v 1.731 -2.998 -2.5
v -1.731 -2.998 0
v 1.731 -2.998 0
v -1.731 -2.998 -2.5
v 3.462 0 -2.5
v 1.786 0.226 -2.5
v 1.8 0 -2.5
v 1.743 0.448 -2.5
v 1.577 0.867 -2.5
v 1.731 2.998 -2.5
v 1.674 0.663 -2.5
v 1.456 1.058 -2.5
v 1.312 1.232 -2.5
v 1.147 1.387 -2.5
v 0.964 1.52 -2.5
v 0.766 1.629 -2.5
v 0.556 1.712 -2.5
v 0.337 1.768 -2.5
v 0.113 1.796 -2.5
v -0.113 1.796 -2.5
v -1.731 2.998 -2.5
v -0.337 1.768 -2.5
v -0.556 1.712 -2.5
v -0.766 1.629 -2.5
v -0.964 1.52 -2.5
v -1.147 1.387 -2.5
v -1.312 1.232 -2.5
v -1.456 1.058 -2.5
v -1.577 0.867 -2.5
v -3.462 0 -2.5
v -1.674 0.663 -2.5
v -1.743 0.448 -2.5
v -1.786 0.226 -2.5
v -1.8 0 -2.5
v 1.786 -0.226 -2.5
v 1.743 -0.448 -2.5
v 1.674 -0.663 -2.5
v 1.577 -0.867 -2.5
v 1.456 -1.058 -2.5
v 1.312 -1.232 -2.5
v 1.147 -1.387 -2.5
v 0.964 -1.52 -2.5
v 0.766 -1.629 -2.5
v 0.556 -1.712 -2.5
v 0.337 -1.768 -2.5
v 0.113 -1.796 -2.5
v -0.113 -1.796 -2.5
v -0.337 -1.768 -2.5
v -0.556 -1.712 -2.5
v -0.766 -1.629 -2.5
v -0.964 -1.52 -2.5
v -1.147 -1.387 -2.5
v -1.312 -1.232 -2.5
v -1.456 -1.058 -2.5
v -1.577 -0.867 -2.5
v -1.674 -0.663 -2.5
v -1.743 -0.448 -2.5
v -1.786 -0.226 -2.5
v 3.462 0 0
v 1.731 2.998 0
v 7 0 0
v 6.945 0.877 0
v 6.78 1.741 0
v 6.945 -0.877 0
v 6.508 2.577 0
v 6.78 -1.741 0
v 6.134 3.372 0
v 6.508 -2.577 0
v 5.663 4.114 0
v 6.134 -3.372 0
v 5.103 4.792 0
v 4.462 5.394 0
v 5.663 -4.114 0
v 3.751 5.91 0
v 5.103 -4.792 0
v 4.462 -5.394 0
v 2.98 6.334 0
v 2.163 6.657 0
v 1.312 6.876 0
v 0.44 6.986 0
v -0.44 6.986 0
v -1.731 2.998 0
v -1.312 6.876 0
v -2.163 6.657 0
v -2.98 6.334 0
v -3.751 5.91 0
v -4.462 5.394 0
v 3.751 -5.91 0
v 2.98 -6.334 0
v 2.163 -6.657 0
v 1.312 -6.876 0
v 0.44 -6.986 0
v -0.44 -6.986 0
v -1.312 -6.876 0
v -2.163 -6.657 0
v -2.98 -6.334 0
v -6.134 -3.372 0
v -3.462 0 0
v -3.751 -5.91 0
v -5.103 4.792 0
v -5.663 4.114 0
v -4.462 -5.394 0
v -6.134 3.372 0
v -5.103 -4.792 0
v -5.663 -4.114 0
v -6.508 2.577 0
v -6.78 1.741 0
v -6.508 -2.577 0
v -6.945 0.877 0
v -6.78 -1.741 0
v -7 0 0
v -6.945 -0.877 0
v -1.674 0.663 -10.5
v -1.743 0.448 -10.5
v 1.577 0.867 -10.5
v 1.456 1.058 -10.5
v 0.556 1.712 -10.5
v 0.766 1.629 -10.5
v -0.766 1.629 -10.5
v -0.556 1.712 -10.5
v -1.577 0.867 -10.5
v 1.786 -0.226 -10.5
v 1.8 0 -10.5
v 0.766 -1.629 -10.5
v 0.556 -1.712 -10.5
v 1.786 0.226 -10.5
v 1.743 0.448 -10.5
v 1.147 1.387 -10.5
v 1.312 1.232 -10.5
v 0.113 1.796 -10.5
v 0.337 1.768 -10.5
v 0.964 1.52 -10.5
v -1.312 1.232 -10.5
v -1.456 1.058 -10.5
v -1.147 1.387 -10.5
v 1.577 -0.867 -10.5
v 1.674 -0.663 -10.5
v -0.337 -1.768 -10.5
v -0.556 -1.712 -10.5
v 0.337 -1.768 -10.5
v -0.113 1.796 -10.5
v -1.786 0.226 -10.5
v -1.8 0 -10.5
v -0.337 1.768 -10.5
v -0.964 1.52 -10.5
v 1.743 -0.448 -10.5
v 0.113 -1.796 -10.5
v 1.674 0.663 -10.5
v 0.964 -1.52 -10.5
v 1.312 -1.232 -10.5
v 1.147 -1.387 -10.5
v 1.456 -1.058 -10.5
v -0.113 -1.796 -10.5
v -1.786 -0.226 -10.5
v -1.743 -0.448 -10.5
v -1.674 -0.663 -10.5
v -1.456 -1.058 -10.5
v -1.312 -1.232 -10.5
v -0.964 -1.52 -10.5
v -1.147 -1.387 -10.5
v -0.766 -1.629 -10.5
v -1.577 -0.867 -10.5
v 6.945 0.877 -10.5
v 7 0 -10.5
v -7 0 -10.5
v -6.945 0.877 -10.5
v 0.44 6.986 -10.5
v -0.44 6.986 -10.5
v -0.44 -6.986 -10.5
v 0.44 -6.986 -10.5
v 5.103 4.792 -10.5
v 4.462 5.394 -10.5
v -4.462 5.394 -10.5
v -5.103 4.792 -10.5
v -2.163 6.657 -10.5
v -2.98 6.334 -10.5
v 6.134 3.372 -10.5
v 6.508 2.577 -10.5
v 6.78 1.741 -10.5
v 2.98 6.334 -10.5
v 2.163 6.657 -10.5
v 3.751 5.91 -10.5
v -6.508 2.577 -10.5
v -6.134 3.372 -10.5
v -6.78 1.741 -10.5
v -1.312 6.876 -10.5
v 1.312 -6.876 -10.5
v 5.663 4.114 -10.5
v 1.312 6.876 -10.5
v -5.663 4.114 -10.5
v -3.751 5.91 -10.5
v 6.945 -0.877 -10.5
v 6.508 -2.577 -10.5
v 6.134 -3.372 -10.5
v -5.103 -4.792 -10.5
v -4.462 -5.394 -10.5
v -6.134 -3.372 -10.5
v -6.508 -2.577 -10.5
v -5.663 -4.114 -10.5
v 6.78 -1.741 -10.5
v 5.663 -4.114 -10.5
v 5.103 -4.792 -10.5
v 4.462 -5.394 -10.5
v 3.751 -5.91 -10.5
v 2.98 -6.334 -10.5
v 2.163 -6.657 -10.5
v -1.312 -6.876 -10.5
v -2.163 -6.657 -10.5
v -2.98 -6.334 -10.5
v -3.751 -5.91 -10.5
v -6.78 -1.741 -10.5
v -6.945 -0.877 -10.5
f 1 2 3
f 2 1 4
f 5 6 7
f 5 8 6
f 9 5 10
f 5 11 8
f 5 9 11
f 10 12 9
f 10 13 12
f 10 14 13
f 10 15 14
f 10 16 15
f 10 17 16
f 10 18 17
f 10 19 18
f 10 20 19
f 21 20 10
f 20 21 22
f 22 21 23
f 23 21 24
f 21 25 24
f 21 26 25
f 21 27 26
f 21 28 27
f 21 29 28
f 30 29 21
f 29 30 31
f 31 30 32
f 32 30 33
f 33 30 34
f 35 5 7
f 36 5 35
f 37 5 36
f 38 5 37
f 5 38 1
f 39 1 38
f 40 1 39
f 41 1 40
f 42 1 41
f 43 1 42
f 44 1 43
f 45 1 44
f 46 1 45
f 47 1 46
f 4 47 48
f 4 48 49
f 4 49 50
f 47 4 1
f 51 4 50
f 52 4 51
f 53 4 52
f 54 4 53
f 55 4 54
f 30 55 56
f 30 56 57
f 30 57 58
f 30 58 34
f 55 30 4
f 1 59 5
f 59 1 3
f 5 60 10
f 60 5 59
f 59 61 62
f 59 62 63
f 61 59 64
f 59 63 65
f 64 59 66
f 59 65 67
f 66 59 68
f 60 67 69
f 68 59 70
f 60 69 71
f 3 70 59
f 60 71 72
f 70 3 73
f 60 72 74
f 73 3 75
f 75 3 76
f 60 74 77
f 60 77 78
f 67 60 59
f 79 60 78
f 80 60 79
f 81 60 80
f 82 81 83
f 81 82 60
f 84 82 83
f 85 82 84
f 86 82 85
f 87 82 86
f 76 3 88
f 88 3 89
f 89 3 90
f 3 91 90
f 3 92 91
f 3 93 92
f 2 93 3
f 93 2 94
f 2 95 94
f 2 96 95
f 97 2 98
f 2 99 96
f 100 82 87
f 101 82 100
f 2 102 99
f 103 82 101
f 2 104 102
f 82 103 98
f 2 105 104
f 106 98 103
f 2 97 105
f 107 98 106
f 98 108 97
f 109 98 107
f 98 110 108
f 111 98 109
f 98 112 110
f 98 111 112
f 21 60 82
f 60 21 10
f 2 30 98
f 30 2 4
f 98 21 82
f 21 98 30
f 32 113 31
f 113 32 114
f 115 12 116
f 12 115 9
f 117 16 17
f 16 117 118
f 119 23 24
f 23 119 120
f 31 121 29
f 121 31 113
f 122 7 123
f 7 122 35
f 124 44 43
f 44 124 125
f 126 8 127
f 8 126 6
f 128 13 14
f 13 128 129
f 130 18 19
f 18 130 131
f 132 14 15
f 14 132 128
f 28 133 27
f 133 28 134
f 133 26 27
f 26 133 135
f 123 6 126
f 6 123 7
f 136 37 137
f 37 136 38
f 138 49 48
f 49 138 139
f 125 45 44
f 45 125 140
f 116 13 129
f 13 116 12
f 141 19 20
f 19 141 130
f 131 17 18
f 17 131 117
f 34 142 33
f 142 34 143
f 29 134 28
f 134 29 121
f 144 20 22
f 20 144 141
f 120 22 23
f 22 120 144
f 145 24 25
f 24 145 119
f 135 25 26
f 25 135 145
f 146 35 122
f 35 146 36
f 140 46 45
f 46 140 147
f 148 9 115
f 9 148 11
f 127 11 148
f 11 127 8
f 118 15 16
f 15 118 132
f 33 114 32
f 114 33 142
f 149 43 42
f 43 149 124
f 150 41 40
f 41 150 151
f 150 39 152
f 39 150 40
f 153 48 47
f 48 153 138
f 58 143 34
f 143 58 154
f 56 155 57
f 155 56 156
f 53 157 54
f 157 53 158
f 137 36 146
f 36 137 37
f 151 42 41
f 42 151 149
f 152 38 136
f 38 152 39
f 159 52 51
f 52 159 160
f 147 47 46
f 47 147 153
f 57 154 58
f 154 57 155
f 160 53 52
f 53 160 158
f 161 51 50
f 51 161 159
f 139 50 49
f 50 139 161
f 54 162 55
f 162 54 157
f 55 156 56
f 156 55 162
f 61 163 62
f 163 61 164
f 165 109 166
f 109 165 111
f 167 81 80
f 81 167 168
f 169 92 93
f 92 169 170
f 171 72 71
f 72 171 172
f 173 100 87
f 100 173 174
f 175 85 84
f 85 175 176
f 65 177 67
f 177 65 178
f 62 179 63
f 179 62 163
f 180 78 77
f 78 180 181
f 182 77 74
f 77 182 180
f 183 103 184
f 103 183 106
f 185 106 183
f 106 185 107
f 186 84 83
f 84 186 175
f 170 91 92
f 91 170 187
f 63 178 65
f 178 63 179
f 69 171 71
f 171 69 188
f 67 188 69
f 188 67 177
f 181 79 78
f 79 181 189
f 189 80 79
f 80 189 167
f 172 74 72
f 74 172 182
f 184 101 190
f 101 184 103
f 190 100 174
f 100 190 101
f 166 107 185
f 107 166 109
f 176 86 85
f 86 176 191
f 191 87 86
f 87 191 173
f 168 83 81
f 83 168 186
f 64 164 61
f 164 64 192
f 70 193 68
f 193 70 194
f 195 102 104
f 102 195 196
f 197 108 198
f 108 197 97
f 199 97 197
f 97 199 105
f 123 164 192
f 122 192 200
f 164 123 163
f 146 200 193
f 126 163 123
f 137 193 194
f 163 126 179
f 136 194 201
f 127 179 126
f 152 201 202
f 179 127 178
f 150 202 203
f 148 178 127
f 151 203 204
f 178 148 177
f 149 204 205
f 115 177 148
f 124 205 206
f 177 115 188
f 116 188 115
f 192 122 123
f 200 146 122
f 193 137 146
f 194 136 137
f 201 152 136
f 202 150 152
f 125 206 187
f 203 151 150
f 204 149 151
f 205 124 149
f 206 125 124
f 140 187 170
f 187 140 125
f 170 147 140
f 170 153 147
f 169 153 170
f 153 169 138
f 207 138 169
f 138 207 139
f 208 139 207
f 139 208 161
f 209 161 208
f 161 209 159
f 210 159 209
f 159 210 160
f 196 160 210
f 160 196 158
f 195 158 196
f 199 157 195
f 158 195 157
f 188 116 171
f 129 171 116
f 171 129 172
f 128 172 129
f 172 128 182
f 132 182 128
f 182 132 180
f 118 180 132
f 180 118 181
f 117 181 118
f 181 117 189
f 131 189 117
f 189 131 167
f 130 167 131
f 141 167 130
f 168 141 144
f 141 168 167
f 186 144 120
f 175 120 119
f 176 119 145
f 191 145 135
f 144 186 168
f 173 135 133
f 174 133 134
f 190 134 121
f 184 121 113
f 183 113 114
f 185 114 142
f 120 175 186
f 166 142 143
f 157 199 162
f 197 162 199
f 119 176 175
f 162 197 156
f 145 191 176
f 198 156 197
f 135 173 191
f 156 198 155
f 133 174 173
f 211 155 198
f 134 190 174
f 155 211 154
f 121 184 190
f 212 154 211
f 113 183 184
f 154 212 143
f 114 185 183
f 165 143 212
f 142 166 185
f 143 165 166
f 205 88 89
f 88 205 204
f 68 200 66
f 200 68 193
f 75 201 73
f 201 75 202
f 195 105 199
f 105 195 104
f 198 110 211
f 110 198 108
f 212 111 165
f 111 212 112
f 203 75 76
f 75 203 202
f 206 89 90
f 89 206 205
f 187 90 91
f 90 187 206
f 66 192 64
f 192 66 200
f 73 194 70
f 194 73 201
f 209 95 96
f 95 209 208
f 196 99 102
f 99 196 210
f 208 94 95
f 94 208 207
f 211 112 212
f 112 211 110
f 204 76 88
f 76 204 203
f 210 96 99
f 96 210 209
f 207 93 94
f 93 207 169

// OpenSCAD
$fn = 50;


difference() {
	union() {
		translate(v = [0, 0, -10.5000000000]) {
			cylinder(h = 10.5000000000, r = 7.0000000000);
		}
	}
	union() {
		translate(v = [0, 0, 0]) {
			rotate(a = [0, 0, 0]) {
				difference() {
					union() {
						translate(v = [0, 0, -2.5000000000]) {
							linear_extrude(height = 2.5000000000) {
								polygon(points = [[3.4620000000, 0.0000000000], [1.7310000000, 2.9981799479], [-1.7310000000, 2.9981799479], [-3.4620000000, 0.0000000000], [-1.7310000000, -2.9981799479], [1.7310000000, -2.9981799479]]);
							}
						}
					}
					union();
				}
			}
		}
		#translate(v = [0, 0, -100.0000000000]) {
			cylinder(h = 200, r = 1.8000000000);
		}
	}
}
